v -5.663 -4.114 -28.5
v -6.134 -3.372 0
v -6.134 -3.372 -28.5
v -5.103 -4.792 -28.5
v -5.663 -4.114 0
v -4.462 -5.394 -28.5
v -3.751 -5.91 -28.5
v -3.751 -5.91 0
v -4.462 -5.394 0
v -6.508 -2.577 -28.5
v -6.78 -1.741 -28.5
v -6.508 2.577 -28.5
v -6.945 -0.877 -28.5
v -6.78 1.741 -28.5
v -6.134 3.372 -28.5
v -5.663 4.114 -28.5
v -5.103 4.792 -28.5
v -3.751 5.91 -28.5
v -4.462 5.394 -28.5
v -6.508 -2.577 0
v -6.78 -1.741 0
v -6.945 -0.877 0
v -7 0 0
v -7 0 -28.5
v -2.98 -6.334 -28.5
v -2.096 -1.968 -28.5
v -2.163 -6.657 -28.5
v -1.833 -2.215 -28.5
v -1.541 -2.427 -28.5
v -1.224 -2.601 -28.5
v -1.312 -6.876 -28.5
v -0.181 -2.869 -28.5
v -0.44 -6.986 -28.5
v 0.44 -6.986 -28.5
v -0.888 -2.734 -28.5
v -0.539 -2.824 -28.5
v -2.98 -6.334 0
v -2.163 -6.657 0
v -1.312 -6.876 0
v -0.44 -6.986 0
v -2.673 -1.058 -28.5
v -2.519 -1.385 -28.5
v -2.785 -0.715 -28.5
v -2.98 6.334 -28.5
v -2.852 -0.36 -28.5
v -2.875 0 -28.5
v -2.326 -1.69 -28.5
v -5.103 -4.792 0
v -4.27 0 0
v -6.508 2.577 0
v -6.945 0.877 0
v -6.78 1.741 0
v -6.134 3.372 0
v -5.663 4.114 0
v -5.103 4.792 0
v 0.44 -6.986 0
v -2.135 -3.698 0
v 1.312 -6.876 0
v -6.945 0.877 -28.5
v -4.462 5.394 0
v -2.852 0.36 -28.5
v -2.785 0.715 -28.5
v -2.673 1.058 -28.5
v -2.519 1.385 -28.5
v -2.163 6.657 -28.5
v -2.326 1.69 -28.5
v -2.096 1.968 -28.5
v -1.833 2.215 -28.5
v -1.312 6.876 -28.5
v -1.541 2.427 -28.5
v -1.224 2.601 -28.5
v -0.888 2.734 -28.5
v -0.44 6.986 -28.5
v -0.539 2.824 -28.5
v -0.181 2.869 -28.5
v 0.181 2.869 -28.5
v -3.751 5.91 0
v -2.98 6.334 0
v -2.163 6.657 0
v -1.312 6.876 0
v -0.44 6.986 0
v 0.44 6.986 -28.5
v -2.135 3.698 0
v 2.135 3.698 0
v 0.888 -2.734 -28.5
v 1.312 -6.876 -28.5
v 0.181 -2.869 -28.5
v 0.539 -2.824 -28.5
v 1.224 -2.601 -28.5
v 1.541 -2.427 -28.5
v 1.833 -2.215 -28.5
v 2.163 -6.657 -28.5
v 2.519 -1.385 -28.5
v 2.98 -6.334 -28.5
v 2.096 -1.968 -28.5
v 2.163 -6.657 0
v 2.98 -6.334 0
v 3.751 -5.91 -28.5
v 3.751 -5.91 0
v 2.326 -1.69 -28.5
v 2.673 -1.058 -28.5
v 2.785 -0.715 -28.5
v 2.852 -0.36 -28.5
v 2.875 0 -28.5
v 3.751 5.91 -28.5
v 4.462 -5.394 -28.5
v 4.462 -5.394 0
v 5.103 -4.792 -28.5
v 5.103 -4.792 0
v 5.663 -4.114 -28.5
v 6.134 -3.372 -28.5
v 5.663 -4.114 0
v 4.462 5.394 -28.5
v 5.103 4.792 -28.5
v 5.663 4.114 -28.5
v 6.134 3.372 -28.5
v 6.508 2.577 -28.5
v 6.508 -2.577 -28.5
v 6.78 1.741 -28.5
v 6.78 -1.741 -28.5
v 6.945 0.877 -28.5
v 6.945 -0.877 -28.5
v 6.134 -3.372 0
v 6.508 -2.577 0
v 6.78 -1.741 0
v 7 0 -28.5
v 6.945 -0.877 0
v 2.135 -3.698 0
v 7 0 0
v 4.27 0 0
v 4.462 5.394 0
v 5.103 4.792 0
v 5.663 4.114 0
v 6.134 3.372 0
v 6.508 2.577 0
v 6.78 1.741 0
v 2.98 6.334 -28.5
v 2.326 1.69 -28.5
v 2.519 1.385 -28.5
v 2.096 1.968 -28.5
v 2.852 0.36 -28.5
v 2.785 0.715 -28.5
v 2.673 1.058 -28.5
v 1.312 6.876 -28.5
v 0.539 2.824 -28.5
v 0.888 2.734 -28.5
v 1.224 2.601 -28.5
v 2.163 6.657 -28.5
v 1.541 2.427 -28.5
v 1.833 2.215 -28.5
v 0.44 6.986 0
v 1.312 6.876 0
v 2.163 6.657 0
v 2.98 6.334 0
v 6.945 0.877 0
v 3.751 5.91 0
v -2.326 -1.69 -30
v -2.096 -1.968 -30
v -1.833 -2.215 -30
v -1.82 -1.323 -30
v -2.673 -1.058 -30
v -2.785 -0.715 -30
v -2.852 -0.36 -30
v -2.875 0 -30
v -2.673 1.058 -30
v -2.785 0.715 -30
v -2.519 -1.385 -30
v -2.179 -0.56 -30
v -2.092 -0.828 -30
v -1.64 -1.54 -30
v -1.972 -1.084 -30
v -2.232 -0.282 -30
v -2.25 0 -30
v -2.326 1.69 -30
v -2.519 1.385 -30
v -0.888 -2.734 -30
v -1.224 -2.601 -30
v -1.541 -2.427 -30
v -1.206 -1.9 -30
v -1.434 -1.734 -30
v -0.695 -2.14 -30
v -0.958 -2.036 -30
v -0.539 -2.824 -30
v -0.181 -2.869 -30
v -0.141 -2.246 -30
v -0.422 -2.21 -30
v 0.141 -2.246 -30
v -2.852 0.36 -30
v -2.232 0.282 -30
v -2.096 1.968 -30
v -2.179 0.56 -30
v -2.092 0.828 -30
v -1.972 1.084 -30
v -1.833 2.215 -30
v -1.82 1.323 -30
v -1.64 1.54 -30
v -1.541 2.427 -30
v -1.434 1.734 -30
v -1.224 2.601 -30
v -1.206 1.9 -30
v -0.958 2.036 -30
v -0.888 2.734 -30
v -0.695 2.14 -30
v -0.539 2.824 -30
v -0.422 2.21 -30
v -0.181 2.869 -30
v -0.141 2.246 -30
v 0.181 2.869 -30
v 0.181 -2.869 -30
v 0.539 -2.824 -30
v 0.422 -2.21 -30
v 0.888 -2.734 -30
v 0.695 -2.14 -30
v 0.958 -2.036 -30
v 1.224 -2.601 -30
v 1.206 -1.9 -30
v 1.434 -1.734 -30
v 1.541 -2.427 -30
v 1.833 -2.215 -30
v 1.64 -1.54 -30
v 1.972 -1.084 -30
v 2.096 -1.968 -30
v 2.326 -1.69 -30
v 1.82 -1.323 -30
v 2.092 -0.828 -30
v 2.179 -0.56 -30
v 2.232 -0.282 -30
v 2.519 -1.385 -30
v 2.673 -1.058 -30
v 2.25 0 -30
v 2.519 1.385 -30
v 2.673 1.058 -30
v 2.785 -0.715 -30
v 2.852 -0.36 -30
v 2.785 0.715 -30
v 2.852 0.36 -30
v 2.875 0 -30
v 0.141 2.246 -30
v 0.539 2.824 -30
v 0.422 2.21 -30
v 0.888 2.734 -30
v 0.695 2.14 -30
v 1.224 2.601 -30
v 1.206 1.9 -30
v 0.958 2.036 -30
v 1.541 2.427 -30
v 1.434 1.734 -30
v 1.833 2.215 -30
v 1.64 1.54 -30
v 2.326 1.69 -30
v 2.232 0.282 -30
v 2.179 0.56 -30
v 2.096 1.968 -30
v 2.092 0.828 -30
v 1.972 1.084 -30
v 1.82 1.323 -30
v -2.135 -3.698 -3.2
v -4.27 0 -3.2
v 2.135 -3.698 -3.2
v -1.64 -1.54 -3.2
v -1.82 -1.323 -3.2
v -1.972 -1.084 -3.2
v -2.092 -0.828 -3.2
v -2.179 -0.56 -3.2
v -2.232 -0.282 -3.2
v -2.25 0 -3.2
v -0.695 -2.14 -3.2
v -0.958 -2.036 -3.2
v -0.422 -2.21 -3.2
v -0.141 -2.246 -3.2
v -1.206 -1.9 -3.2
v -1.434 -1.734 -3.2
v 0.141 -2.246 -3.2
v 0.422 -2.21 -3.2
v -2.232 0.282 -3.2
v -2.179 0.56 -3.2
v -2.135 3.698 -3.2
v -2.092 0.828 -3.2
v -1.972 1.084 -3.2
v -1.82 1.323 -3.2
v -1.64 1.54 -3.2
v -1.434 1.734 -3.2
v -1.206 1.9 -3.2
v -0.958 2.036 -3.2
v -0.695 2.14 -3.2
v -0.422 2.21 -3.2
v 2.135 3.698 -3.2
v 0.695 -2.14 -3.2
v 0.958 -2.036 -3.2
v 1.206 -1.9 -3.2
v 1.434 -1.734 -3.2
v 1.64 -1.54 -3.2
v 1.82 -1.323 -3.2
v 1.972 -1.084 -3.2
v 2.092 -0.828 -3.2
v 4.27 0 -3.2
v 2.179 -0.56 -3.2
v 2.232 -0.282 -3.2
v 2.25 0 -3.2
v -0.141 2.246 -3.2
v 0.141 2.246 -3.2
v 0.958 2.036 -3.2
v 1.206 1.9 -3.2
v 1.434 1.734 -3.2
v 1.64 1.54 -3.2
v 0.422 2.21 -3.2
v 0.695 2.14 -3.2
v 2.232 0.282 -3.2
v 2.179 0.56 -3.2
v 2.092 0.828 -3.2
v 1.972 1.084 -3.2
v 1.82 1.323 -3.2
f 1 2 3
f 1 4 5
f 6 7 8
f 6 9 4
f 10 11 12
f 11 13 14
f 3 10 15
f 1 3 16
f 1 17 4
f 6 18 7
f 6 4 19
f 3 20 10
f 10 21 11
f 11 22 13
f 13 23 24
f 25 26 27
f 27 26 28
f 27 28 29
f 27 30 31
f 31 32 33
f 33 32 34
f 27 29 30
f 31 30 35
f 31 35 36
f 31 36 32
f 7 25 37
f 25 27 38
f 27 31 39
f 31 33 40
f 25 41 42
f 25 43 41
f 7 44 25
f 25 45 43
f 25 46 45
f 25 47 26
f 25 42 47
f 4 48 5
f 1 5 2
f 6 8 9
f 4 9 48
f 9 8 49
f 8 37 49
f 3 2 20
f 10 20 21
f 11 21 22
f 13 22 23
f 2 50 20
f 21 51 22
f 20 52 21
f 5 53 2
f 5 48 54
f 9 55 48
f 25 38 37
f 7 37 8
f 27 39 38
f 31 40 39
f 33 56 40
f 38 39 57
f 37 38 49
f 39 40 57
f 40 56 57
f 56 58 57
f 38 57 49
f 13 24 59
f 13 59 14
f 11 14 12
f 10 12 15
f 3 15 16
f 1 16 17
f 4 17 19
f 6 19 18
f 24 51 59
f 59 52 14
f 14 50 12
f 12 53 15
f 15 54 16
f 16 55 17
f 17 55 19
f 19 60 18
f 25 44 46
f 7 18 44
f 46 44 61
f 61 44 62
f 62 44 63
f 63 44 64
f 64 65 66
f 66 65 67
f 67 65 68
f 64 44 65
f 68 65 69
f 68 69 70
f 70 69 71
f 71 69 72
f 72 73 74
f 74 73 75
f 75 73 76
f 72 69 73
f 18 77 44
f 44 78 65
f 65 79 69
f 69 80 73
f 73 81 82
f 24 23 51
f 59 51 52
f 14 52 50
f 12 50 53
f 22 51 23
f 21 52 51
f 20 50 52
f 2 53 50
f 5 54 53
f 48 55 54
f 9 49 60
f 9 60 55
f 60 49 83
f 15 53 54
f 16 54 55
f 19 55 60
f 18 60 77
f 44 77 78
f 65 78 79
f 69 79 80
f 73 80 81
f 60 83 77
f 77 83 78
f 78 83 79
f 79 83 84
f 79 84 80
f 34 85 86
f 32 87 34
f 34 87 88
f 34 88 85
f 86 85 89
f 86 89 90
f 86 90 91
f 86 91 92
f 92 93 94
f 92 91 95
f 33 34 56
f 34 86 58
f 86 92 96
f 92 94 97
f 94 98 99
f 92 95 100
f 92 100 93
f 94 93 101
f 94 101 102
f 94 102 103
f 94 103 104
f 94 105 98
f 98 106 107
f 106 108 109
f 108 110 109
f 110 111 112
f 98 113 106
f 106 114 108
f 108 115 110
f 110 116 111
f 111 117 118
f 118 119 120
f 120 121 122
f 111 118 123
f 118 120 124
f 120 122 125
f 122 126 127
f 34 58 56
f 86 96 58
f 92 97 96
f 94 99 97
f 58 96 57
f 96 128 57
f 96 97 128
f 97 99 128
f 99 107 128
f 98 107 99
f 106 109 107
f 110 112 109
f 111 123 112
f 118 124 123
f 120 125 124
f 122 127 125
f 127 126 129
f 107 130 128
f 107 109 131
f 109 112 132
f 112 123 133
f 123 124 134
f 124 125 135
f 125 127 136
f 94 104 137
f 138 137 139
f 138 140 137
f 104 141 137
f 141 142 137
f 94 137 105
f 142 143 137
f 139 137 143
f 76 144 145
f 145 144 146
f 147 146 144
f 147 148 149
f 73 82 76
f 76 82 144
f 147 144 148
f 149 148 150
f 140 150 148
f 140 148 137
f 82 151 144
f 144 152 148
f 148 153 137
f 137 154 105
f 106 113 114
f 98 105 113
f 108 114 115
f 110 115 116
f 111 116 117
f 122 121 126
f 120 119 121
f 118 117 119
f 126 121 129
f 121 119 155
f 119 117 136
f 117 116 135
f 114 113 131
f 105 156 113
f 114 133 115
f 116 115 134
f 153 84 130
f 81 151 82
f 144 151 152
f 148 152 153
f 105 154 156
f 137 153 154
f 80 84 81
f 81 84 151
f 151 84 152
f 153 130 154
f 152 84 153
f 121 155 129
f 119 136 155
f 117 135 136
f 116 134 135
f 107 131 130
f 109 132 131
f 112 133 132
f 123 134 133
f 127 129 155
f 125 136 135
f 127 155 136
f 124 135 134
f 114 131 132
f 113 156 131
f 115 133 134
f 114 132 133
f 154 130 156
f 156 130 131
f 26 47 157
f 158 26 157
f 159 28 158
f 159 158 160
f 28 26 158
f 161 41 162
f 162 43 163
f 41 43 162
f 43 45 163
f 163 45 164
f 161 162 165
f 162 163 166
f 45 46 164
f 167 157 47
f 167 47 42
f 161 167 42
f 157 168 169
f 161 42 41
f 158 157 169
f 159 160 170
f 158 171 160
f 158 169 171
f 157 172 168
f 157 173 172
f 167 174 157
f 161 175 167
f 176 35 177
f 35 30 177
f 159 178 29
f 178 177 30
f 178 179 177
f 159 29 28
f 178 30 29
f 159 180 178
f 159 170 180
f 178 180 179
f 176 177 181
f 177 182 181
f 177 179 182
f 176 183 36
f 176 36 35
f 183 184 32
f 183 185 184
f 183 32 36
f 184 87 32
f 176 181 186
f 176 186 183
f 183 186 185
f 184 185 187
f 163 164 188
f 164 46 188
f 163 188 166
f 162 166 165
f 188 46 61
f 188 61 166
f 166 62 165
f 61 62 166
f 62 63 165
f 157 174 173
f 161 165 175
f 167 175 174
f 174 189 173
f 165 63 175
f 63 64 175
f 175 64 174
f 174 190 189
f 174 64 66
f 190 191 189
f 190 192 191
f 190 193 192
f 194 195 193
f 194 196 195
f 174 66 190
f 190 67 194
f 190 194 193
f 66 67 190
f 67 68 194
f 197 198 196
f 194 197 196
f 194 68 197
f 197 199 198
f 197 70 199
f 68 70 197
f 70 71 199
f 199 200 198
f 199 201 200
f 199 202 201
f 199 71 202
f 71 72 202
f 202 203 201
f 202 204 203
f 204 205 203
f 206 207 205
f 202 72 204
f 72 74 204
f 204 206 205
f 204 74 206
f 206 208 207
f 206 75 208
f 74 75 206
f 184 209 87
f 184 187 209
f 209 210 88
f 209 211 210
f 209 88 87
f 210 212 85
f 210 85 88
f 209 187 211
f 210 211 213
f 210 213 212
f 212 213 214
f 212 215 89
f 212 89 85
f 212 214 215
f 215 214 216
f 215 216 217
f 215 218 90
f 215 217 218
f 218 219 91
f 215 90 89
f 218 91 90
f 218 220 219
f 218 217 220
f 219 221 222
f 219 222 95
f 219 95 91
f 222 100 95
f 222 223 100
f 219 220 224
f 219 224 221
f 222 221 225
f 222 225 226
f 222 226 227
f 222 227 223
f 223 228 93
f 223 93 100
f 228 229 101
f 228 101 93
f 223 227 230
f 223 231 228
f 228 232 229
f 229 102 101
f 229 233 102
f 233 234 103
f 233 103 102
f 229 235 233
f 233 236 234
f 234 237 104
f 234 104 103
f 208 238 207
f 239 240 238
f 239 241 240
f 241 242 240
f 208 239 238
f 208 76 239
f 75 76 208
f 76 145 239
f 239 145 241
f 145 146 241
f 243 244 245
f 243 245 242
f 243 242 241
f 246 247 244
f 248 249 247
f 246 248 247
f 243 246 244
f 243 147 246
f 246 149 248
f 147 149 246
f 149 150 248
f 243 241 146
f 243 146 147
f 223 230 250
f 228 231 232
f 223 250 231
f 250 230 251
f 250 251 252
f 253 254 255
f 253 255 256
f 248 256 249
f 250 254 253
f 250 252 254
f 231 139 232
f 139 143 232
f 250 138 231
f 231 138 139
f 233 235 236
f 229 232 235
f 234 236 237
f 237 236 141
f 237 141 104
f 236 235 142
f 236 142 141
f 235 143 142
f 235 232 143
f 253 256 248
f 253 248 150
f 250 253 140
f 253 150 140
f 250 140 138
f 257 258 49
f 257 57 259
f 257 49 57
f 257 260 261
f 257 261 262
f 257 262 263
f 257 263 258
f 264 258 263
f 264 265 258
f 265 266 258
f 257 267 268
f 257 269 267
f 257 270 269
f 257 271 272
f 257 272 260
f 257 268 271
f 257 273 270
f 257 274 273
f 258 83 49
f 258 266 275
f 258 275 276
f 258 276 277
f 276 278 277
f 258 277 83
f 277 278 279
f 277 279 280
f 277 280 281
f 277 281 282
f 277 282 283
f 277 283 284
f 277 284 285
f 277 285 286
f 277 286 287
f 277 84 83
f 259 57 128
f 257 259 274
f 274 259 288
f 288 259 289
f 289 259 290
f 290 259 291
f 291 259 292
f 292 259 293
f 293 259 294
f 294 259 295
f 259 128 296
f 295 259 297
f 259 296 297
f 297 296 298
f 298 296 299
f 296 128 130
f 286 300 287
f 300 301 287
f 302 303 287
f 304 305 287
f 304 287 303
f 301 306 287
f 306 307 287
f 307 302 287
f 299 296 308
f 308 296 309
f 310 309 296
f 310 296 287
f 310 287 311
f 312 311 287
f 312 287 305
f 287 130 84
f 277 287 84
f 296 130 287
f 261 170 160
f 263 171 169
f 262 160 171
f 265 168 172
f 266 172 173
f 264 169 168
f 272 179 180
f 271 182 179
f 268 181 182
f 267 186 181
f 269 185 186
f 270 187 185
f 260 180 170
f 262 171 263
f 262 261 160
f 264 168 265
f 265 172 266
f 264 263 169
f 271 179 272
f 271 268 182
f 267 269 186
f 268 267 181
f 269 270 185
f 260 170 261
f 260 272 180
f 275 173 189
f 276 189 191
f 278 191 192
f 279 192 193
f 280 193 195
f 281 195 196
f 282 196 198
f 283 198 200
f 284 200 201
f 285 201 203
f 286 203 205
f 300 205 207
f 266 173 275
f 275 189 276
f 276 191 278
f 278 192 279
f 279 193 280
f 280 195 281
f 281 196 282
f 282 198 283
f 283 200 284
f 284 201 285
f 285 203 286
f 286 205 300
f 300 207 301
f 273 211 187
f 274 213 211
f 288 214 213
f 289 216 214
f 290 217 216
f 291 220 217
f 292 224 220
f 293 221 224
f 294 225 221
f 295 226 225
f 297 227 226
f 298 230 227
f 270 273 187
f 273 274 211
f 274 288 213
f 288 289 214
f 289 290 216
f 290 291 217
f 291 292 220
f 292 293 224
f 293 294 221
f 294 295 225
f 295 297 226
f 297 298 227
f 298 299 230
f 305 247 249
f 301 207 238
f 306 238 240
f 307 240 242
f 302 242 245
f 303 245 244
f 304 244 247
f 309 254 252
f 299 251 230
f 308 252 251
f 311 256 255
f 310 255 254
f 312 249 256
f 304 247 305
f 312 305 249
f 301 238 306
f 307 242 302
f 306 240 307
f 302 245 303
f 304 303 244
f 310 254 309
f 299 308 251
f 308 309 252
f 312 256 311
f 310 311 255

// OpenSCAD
$fn = 50;

difference() {
	union() {
		translate(v = [0, 0, -28.5]) {
			cylinder(h = 28.5, r = 7.0);
		}
		#translate(v = [0, 0, -30.0]) {
			cylinder(h = 30, r = 2.875);
		}
	}
	union() {
		translate(v = [0, 0, 0]) {
			rotate(a = [0, 0, 0]) {
				difference() {
					union() {
						translate(v = [0, 0, -3.2]) {
							linear_extrude(height = 3.2) {
								polygon(points = [[4.2698, 0.0], [2.1349000000000005, 3.697755269078796], [-2.134899999999999, 3.6977552690787965], [-4.2698, 5.228996902999369e-16], [-2.134900000000002, -3.6977552690787956], [2.1348999999999974, -3.697755269078798]]);
							}
						}
					}
					union();
				}
			}
		}
		#translate(v = [0, 0, -100.0]) {
			cylinder(h = 200, r = 2.25);
		}
	}
}
